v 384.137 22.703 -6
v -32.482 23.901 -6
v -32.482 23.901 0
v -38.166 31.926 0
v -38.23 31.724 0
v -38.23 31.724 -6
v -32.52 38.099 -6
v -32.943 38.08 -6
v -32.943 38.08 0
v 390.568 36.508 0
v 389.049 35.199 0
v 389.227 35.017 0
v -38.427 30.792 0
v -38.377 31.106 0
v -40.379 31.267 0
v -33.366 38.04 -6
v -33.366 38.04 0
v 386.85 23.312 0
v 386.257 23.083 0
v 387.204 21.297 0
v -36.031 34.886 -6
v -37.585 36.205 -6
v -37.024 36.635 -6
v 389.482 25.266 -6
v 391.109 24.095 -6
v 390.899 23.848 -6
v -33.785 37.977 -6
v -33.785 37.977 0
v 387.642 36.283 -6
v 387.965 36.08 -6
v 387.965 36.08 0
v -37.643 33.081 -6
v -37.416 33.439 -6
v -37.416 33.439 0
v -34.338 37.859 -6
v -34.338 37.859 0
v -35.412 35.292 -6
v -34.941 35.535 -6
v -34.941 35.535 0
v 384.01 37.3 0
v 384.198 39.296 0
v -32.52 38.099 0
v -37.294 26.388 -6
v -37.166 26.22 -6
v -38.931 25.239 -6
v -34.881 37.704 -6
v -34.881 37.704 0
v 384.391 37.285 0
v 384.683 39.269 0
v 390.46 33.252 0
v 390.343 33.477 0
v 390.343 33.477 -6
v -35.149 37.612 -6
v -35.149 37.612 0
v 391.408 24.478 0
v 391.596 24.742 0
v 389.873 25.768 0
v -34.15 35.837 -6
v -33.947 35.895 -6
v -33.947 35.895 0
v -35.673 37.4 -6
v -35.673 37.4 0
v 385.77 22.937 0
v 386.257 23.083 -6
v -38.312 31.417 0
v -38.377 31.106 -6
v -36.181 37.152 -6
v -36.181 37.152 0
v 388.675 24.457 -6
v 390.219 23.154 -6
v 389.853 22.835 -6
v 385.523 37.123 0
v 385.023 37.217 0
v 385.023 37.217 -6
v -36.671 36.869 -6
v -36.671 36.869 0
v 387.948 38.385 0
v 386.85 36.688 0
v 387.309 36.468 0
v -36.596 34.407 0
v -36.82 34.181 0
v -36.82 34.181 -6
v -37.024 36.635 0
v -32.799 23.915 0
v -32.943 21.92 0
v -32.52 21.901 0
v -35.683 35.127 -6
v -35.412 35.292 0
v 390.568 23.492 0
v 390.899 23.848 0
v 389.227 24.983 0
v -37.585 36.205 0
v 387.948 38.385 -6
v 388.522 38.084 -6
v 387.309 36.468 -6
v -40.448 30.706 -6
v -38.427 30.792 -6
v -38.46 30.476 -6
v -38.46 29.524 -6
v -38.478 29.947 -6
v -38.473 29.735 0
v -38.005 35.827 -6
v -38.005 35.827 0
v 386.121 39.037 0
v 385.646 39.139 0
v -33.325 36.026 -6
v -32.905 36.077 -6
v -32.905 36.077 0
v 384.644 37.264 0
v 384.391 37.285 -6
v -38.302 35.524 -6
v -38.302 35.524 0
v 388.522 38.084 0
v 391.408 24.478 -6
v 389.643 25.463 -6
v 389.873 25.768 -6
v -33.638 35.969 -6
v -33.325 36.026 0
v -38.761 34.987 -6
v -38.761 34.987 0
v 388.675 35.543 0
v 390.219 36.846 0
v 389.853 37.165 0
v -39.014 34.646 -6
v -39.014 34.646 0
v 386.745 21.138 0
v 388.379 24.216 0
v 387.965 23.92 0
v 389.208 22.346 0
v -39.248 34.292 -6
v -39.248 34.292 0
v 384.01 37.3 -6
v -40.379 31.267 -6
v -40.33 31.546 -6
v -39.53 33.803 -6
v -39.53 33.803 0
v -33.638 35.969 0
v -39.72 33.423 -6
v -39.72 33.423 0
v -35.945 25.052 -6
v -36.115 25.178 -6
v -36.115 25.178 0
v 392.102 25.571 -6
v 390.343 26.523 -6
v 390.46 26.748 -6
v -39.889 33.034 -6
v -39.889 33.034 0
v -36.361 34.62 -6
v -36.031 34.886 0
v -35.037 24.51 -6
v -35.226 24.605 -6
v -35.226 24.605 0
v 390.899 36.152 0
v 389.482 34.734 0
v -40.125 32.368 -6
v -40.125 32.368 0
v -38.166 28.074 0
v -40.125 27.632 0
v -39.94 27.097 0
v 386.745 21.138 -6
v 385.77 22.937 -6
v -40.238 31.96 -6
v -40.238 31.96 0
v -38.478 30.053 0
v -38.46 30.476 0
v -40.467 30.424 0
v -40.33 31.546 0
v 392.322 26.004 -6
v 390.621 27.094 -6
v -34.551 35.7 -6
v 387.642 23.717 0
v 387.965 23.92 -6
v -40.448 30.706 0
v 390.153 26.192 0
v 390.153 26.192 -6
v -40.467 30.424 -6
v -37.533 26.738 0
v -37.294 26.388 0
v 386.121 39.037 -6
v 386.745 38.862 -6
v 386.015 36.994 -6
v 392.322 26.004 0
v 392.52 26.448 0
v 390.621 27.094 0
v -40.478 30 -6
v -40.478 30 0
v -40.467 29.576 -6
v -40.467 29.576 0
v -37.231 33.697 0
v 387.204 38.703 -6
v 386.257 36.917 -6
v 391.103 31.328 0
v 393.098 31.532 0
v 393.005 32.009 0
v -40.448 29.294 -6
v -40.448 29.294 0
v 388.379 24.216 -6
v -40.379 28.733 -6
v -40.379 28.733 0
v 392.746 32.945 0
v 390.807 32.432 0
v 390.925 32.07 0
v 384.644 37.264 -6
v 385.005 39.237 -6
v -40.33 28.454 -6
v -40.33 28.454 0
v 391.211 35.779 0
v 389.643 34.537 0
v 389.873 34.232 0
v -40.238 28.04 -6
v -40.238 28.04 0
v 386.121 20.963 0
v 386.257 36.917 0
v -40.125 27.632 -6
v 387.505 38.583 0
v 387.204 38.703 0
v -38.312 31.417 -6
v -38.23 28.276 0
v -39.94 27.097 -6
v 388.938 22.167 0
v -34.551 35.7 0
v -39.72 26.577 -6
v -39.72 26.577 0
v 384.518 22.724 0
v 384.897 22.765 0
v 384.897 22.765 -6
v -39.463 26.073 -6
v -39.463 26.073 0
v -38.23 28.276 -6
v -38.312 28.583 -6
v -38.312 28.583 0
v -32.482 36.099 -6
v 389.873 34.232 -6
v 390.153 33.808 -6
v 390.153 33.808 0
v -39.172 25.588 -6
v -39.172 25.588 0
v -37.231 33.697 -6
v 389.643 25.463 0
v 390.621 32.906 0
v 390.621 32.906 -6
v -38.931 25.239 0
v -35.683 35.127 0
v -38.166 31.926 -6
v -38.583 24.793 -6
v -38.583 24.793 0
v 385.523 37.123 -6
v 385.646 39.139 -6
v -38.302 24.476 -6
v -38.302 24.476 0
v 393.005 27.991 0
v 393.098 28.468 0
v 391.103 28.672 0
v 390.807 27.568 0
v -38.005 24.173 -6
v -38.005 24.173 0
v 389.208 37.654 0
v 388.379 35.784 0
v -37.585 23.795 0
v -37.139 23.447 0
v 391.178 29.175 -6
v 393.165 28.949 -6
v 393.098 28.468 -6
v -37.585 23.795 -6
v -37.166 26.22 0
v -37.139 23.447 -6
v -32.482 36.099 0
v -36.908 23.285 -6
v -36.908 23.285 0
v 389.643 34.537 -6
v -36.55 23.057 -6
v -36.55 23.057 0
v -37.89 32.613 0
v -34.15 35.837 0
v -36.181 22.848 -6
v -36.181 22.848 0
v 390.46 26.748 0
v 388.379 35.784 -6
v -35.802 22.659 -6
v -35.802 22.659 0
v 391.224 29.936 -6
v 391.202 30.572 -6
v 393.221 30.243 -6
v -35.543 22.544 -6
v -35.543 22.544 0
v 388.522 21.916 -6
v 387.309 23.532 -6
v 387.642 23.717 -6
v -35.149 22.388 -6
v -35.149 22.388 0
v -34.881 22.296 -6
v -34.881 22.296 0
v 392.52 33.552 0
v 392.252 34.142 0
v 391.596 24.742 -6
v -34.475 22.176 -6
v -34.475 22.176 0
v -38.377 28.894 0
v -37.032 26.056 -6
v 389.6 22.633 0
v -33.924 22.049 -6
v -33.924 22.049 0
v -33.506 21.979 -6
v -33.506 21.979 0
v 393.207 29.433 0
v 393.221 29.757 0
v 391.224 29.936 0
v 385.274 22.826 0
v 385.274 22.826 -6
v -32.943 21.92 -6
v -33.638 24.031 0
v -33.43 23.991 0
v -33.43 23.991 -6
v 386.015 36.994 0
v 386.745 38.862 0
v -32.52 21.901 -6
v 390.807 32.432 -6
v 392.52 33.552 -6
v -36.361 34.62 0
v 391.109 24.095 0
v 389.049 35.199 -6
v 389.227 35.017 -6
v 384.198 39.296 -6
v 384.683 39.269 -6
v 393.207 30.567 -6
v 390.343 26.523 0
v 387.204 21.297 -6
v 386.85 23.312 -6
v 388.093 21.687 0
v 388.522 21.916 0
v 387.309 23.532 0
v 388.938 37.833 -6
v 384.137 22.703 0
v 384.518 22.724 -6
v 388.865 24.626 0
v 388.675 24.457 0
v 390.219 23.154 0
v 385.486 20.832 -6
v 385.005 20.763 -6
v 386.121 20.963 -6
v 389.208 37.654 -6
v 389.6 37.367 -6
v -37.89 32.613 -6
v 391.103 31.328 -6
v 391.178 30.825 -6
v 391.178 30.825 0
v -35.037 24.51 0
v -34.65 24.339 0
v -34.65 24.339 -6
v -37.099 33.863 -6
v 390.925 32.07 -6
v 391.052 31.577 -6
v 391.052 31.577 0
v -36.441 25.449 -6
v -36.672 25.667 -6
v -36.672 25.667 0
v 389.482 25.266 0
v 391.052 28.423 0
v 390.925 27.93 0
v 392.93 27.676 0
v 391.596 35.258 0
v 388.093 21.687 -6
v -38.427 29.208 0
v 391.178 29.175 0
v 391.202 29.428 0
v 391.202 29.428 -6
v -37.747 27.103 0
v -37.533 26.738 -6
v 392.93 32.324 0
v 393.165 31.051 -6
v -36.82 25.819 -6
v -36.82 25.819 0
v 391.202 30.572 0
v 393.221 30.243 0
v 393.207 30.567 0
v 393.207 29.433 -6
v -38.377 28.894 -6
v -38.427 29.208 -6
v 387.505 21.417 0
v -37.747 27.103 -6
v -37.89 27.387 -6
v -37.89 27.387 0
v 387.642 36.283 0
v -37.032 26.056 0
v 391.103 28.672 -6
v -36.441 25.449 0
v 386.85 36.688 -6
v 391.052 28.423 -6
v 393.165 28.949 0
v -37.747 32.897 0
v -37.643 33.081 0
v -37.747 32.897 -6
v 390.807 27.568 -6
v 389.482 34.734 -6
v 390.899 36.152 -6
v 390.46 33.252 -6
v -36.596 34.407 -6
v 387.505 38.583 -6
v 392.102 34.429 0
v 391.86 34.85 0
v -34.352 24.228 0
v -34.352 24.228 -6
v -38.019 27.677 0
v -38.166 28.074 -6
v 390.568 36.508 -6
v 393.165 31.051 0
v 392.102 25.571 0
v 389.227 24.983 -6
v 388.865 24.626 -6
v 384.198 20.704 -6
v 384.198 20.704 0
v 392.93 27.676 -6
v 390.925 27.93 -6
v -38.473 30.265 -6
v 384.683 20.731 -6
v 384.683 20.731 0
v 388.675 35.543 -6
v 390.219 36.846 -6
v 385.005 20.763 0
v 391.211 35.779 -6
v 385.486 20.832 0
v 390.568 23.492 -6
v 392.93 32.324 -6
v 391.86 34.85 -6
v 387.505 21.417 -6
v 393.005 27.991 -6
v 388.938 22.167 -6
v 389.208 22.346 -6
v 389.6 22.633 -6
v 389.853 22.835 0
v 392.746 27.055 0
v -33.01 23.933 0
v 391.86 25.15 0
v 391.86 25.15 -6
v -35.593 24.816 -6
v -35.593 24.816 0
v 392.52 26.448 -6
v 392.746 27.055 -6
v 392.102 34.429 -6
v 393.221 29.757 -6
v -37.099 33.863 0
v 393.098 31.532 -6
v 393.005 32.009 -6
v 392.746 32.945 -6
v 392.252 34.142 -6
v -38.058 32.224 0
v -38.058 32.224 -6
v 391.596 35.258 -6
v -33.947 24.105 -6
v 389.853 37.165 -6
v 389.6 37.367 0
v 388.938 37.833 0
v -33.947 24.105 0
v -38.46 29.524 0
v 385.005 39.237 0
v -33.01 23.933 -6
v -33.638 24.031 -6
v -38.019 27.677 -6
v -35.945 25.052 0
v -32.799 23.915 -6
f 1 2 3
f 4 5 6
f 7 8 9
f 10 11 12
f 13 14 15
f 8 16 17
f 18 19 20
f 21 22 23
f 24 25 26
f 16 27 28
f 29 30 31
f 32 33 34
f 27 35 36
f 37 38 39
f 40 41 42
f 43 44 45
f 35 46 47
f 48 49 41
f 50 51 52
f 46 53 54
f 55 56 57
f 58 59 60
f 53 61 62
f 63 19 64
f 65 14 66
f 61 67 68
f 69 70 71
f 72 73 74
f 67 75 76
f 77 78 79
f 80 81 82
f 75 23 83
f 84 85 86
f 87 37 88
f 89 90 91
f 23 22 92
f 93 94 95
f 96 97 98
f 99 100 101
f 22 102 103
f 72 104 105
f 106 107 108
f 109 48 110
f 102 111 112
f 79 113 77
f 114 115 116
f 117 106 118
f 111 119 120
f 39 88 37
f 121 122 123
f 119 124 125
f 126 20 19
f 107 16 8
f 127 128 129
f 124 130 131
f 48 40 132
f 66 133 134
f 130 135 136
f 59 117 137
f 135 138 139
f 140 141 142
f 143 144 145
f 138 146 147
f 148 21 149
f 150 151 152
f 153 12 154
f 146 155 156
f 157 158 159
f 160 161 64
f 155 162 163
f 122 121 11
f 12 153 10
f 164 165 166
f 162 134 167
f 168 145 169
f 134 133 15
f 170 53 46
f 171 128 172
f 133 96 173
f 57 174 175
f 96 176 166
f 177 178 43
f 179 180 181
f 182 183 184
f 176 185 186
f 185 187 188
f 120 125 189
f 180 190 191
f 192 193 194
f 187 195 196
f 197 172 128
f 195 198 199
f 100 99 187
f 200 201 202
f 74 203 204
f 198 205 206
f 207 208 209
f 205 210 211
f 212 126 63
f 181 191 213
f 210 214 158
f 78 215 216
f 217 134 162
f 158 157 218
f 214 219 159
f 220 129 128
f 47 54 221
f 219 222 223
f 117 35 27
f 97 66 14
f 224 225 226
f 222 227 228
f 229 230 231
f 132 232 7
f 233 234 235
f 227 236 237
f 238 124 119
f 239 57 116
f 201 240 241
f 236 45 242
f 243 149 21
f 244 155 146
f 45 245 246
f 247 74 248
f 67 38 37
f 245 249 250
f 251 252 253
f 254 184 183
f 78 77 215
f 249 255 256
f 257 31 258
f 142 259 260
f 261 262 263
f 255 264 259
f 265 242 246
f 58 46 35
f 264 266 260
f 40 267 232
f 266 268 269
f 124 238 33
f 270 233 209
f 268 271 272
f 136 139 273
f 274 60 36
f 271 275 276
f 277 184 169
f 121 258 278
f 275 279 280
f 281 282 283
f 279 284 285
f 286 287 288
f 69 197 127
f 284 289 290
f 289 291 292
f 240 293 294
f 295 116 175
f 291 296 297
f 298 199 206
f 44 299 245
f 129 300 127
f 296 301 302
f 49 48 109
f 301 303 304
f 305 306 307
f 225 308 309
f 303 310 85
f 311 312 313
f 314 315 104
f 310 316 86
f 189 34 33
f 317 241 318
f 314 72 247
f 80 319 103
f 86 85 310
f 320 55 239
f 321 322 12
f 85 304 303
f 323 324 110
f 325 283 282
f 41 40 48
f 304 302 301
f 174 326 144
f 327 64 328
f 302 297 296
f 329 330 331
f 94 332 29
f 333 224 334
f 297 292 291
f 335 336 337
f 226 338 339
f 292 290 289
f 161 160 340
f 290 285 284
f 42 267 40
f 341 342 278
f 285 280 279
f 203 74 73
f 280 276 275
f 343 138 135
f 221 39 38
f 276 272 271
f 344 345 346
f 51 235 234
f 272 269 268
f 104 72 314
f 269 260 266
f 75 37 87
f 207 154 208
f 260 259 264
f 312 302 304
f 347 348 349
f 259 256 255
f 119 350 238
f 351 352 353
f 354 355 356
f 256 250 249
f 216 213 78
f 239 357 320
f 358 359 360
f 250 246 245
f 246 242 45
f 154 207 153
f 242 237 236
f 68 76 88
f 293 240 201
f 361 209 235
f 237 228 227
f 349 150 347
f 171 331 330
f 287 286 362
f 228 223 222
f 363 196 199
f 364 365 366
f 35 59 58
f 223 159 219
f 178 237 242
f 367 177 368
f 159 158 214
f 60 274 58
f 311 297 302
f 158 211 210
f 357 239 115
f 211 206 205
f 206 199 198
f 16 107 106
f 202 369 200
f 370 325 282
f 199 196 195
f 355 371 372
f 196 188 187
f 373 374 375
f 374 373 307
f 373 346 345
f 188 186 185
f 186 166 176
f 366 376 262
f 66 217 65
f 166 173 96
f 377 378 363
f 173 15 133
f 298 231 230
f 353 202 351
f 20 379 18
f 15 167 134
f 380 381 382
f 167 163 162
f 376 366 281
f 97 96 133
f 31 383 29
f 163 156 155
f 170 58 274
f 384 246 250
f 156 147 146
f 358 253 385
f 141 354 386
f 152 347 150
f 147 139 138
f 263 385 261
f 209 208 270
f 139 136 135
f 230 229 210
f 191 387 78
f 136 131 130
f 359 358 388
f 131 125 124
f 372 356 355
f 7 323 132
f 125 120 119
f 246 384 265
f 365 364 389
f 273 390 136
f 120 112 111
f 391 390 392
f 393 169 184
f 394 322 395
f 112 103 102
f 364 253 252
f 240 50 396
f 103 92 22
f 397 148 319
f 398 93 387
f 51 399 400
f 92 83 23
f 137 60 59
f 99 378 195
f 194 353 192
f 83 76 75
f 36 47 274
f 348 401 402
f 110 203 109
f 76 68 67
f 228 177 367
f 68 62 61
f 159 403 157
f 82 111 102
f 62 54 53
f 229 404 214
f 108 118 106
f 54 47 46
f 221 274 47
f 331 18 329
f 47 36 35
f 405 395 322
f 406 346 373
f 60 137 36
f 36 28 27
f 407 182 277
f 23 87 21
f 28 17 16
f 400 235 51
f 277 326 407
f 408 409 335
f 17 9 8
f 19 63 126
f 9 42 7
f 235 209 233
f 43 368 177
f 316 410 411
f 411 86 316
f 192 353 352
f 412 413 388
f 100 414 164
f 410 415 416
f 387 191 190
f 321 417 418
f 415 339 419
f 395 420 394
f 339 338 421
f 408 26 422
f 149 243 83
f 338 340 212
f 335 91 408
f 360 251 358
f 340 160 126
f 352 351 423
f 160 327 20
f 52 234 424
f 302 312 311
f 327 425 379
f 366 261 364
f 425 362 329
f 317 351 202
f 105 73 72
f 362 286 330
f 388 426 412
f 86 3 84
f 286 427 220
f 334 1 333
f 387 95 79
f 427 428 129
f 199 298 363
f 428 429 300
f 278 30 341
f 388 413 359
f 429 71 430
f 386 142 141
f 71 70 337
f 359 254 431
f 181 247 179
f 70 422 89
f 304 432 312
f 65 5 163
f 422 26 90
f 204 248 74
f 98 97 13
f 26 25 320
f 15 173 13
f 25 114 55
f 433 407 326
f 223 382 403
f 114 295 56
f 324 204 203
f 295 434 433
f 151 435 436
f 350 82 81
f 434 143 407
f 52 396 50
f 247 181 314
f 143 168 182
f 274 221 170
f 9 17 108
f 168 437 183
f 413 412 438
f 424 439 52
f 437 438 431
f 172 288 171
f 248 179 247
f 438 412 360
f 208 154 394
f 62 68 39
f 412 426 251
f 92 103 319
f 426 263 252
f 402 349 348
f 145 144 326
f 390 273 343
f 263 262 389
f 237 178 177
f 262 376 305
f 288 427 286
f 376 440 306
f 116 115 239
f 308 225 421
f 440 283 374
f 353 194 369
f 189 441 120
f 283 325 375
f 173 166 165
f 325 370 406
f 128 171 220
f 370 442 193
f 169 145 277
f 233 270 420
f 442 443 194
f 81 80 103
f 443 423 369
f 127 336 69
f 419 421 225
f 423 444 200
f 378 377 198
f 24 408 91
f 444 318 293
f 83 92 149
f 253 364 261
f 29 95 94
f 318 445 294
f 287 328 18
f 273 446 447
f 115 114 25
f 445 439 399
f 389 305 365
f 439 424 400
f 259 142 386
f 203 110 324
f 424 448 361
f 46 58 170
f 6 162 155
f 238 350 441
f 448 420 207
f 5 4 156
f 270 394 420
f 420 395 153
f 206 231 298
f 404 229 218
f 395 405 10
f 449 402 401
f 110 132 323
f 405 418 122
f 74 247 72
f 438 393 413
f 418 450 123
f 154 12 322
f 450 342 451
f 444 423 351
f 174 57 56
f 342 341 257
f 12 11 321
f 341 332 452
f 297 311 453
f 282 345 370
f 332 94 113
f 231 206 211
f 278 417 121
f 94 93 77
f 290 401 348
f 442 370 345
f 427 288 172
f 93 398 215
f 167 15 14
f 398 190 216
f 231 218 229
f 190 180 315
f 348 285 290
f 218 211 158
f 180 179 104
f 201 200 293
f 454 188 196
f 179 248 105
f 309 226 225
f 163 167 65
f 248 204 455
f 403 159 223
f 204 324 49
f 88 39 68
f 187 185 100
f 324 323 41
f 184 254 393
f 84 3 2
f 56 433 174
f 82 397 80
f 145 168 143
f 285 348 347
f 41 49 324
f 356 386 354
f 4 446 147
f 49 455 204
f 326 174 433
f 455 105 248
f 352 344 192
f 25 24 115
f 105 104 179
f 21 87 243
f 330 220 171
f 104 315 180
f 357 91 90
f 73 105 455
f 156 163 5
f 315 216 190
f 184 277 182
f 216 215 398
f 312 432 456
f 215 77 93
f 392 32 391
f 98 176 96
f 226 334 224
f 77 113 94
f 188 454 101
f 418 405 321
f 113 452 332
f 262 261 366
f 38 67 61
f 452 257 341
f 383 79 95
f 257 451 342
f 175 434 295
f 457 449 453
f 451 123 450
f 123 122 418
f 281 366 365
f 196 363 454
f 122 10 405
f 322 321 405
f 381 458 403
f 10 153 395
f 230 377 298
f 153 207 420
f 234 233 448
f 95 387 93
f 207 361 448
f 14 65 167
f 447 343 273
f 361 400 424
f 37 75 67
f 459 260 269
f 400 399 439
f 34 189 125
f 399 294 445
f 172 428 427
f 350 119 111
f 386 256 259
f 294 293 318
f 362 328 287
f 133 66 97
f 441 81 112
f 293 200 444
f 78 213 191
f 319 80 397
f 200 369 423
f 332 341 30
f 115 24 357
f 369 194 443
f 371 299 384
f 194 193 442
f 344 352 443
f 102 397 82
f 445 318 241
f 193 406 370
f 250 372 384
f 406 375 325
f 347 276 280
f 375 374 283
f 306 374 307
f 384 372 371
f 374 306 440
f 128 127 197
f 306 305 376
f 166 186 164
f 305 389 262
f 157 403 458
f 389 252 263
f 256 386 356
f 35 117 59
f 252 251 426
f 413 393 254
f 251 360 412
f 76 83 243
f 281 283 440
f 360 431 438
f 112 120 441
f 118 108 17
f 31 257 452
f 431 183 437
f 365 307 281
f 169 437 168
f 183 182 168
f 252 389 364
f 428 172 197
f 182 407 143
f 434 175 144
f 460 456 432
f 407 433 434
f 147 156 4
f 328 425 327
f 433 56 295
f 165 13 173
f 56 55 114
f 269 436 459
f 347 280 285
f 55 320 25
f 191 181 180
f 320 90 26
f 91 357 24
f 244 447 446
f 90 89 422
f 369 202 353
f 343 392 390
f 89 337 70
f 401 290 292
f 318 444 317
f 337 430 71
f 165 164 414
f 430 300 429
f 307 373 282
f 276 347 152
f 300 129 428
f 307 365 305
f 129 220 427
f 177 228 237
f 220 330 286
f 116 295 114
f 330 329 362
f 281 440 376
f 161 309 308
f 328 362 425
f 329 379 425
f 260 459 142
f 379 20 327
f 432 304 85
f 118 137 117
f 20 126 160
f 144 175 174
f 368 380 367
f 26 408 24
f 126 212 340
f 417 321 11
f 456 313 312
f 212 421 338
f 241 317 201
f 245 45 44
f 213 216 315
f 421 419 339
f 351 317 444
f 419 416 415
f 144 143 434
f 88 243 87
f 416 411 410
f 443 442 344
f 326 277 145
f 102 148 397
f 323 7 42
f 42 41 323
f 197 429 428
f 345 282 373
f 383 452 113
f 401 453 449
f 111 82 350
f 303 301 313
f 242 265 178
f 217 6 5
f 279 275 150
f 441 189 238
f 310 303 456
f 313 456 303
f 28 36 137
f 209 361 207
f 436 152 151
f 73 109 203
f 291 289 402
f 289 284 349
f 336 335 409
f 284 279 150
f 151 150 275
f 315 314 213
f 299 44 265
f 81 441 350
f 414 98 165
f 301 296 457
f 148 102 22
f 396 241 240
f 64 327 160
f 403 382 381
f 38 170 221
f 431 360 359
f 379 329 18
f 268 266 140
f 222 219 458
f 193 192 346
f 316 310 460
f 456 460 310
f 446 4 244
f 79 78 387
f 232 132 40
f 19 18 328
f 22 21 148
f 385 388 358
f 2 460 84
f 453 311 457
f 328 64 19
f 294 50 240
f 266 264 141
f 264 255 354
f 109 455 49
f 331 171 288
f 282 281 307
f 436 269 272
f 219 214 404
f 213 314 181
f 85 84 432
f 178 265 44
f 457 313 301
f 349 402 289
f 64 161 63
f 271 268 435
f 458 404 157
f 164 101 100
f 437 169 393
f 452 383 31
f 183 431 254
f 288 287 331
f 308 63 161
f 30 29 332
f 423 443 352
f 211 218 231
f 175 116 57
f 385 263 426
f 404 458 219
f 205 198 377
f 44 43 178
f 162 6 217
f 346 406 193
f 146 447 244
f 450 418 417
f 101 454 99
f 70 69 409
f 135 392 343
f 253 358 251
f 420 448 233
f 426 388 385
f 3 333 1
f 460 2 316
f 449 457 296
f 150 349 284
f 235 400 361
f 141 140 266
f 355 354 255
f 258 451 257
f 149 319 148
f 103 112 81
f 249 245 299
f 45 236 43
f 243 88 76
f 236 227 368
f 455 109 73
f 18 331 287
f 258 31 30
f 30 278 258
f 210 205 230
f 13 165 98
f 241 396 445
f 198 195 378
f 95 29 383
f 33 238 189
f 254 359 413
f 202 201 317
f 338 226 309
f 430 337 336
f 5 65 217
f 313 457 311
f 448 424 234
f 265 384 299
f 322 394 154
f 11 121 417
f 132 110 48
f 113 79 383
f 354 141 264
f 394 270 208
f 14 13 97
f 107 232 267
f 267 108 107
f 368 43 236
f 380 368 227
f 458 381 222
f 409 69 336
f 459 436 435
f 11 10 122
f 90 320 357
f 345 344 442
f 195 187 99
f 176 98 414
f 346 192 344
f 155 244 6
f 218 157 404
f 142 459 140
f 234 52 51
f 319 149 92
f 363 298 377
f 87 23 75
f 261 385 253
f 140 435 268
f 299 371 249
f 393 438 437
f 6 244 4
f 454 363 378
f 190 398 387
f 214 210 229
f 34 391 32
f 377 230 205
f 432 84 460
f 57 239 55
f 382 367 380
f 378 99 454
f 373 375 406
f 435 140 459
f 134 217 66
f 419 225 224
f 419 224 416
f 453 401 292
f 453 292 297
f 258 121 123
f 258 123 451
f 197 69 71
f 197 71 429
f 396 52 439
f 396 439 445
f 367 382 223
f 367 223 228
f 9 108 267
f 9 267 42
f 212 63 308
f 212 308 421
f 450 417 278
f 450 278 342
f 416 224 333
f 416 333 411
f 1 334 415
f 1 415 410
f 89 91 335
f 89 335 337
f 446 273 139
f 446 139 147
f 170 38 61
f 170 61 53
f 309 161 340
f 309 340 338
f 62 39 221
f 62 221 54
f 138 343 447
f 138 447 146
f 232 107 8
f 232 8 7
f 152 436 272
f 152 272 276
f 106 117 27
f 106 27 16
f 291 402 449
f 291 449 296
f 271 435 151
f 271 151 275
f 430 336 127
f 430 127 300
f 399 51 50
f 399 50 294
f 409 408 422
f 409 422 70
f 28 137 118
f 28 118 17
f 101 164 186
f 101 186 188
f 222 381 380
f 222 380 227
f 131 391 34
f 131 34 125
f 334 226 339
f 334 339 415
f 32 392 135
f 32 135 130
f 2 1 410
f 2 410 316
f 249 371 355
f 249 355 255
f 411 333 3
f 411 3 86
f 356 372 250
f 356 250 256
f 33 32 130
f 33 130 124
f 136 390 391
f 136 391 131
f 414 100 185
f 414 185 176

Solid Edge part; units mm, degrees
sketch "Sketch1" plane through (0, 0, 0) normal (0, 0, 1) x (1, 0, 0)
  line L0 (-32.5171, 23.9) -> (383.7412, 22.7001)
  line L1 (383.7412, 37.2999) -> (-32.5171, 36.1)
  arc A0 (383.7412, 37.2999) -> (383.7412, 22.7001) centre (383.7833, 30) cw
  arc A1 (-32.5171, 23.9) -> (-32.5171, 36.1) centre (-32.5198, 30) cw
  line L2 (-32.5198, 21.9) -> (383.7327, 20.7001)
  arc A2 (383.7327, 20.7001) -> (383.7327, 39.2999) centre (383.7833, 30) ccw
  line L3 (383.7327, 39.2999) -> (-32.5198, 38.1)
  arc A3 (-32.5198, 38.1) -> (-32.5198, 21.9) centre (-32.5198, 30) ccw
extrude "Protrusion1" add sketch "Sketch1" against normal blind 6
properties material "Polyurethene"
